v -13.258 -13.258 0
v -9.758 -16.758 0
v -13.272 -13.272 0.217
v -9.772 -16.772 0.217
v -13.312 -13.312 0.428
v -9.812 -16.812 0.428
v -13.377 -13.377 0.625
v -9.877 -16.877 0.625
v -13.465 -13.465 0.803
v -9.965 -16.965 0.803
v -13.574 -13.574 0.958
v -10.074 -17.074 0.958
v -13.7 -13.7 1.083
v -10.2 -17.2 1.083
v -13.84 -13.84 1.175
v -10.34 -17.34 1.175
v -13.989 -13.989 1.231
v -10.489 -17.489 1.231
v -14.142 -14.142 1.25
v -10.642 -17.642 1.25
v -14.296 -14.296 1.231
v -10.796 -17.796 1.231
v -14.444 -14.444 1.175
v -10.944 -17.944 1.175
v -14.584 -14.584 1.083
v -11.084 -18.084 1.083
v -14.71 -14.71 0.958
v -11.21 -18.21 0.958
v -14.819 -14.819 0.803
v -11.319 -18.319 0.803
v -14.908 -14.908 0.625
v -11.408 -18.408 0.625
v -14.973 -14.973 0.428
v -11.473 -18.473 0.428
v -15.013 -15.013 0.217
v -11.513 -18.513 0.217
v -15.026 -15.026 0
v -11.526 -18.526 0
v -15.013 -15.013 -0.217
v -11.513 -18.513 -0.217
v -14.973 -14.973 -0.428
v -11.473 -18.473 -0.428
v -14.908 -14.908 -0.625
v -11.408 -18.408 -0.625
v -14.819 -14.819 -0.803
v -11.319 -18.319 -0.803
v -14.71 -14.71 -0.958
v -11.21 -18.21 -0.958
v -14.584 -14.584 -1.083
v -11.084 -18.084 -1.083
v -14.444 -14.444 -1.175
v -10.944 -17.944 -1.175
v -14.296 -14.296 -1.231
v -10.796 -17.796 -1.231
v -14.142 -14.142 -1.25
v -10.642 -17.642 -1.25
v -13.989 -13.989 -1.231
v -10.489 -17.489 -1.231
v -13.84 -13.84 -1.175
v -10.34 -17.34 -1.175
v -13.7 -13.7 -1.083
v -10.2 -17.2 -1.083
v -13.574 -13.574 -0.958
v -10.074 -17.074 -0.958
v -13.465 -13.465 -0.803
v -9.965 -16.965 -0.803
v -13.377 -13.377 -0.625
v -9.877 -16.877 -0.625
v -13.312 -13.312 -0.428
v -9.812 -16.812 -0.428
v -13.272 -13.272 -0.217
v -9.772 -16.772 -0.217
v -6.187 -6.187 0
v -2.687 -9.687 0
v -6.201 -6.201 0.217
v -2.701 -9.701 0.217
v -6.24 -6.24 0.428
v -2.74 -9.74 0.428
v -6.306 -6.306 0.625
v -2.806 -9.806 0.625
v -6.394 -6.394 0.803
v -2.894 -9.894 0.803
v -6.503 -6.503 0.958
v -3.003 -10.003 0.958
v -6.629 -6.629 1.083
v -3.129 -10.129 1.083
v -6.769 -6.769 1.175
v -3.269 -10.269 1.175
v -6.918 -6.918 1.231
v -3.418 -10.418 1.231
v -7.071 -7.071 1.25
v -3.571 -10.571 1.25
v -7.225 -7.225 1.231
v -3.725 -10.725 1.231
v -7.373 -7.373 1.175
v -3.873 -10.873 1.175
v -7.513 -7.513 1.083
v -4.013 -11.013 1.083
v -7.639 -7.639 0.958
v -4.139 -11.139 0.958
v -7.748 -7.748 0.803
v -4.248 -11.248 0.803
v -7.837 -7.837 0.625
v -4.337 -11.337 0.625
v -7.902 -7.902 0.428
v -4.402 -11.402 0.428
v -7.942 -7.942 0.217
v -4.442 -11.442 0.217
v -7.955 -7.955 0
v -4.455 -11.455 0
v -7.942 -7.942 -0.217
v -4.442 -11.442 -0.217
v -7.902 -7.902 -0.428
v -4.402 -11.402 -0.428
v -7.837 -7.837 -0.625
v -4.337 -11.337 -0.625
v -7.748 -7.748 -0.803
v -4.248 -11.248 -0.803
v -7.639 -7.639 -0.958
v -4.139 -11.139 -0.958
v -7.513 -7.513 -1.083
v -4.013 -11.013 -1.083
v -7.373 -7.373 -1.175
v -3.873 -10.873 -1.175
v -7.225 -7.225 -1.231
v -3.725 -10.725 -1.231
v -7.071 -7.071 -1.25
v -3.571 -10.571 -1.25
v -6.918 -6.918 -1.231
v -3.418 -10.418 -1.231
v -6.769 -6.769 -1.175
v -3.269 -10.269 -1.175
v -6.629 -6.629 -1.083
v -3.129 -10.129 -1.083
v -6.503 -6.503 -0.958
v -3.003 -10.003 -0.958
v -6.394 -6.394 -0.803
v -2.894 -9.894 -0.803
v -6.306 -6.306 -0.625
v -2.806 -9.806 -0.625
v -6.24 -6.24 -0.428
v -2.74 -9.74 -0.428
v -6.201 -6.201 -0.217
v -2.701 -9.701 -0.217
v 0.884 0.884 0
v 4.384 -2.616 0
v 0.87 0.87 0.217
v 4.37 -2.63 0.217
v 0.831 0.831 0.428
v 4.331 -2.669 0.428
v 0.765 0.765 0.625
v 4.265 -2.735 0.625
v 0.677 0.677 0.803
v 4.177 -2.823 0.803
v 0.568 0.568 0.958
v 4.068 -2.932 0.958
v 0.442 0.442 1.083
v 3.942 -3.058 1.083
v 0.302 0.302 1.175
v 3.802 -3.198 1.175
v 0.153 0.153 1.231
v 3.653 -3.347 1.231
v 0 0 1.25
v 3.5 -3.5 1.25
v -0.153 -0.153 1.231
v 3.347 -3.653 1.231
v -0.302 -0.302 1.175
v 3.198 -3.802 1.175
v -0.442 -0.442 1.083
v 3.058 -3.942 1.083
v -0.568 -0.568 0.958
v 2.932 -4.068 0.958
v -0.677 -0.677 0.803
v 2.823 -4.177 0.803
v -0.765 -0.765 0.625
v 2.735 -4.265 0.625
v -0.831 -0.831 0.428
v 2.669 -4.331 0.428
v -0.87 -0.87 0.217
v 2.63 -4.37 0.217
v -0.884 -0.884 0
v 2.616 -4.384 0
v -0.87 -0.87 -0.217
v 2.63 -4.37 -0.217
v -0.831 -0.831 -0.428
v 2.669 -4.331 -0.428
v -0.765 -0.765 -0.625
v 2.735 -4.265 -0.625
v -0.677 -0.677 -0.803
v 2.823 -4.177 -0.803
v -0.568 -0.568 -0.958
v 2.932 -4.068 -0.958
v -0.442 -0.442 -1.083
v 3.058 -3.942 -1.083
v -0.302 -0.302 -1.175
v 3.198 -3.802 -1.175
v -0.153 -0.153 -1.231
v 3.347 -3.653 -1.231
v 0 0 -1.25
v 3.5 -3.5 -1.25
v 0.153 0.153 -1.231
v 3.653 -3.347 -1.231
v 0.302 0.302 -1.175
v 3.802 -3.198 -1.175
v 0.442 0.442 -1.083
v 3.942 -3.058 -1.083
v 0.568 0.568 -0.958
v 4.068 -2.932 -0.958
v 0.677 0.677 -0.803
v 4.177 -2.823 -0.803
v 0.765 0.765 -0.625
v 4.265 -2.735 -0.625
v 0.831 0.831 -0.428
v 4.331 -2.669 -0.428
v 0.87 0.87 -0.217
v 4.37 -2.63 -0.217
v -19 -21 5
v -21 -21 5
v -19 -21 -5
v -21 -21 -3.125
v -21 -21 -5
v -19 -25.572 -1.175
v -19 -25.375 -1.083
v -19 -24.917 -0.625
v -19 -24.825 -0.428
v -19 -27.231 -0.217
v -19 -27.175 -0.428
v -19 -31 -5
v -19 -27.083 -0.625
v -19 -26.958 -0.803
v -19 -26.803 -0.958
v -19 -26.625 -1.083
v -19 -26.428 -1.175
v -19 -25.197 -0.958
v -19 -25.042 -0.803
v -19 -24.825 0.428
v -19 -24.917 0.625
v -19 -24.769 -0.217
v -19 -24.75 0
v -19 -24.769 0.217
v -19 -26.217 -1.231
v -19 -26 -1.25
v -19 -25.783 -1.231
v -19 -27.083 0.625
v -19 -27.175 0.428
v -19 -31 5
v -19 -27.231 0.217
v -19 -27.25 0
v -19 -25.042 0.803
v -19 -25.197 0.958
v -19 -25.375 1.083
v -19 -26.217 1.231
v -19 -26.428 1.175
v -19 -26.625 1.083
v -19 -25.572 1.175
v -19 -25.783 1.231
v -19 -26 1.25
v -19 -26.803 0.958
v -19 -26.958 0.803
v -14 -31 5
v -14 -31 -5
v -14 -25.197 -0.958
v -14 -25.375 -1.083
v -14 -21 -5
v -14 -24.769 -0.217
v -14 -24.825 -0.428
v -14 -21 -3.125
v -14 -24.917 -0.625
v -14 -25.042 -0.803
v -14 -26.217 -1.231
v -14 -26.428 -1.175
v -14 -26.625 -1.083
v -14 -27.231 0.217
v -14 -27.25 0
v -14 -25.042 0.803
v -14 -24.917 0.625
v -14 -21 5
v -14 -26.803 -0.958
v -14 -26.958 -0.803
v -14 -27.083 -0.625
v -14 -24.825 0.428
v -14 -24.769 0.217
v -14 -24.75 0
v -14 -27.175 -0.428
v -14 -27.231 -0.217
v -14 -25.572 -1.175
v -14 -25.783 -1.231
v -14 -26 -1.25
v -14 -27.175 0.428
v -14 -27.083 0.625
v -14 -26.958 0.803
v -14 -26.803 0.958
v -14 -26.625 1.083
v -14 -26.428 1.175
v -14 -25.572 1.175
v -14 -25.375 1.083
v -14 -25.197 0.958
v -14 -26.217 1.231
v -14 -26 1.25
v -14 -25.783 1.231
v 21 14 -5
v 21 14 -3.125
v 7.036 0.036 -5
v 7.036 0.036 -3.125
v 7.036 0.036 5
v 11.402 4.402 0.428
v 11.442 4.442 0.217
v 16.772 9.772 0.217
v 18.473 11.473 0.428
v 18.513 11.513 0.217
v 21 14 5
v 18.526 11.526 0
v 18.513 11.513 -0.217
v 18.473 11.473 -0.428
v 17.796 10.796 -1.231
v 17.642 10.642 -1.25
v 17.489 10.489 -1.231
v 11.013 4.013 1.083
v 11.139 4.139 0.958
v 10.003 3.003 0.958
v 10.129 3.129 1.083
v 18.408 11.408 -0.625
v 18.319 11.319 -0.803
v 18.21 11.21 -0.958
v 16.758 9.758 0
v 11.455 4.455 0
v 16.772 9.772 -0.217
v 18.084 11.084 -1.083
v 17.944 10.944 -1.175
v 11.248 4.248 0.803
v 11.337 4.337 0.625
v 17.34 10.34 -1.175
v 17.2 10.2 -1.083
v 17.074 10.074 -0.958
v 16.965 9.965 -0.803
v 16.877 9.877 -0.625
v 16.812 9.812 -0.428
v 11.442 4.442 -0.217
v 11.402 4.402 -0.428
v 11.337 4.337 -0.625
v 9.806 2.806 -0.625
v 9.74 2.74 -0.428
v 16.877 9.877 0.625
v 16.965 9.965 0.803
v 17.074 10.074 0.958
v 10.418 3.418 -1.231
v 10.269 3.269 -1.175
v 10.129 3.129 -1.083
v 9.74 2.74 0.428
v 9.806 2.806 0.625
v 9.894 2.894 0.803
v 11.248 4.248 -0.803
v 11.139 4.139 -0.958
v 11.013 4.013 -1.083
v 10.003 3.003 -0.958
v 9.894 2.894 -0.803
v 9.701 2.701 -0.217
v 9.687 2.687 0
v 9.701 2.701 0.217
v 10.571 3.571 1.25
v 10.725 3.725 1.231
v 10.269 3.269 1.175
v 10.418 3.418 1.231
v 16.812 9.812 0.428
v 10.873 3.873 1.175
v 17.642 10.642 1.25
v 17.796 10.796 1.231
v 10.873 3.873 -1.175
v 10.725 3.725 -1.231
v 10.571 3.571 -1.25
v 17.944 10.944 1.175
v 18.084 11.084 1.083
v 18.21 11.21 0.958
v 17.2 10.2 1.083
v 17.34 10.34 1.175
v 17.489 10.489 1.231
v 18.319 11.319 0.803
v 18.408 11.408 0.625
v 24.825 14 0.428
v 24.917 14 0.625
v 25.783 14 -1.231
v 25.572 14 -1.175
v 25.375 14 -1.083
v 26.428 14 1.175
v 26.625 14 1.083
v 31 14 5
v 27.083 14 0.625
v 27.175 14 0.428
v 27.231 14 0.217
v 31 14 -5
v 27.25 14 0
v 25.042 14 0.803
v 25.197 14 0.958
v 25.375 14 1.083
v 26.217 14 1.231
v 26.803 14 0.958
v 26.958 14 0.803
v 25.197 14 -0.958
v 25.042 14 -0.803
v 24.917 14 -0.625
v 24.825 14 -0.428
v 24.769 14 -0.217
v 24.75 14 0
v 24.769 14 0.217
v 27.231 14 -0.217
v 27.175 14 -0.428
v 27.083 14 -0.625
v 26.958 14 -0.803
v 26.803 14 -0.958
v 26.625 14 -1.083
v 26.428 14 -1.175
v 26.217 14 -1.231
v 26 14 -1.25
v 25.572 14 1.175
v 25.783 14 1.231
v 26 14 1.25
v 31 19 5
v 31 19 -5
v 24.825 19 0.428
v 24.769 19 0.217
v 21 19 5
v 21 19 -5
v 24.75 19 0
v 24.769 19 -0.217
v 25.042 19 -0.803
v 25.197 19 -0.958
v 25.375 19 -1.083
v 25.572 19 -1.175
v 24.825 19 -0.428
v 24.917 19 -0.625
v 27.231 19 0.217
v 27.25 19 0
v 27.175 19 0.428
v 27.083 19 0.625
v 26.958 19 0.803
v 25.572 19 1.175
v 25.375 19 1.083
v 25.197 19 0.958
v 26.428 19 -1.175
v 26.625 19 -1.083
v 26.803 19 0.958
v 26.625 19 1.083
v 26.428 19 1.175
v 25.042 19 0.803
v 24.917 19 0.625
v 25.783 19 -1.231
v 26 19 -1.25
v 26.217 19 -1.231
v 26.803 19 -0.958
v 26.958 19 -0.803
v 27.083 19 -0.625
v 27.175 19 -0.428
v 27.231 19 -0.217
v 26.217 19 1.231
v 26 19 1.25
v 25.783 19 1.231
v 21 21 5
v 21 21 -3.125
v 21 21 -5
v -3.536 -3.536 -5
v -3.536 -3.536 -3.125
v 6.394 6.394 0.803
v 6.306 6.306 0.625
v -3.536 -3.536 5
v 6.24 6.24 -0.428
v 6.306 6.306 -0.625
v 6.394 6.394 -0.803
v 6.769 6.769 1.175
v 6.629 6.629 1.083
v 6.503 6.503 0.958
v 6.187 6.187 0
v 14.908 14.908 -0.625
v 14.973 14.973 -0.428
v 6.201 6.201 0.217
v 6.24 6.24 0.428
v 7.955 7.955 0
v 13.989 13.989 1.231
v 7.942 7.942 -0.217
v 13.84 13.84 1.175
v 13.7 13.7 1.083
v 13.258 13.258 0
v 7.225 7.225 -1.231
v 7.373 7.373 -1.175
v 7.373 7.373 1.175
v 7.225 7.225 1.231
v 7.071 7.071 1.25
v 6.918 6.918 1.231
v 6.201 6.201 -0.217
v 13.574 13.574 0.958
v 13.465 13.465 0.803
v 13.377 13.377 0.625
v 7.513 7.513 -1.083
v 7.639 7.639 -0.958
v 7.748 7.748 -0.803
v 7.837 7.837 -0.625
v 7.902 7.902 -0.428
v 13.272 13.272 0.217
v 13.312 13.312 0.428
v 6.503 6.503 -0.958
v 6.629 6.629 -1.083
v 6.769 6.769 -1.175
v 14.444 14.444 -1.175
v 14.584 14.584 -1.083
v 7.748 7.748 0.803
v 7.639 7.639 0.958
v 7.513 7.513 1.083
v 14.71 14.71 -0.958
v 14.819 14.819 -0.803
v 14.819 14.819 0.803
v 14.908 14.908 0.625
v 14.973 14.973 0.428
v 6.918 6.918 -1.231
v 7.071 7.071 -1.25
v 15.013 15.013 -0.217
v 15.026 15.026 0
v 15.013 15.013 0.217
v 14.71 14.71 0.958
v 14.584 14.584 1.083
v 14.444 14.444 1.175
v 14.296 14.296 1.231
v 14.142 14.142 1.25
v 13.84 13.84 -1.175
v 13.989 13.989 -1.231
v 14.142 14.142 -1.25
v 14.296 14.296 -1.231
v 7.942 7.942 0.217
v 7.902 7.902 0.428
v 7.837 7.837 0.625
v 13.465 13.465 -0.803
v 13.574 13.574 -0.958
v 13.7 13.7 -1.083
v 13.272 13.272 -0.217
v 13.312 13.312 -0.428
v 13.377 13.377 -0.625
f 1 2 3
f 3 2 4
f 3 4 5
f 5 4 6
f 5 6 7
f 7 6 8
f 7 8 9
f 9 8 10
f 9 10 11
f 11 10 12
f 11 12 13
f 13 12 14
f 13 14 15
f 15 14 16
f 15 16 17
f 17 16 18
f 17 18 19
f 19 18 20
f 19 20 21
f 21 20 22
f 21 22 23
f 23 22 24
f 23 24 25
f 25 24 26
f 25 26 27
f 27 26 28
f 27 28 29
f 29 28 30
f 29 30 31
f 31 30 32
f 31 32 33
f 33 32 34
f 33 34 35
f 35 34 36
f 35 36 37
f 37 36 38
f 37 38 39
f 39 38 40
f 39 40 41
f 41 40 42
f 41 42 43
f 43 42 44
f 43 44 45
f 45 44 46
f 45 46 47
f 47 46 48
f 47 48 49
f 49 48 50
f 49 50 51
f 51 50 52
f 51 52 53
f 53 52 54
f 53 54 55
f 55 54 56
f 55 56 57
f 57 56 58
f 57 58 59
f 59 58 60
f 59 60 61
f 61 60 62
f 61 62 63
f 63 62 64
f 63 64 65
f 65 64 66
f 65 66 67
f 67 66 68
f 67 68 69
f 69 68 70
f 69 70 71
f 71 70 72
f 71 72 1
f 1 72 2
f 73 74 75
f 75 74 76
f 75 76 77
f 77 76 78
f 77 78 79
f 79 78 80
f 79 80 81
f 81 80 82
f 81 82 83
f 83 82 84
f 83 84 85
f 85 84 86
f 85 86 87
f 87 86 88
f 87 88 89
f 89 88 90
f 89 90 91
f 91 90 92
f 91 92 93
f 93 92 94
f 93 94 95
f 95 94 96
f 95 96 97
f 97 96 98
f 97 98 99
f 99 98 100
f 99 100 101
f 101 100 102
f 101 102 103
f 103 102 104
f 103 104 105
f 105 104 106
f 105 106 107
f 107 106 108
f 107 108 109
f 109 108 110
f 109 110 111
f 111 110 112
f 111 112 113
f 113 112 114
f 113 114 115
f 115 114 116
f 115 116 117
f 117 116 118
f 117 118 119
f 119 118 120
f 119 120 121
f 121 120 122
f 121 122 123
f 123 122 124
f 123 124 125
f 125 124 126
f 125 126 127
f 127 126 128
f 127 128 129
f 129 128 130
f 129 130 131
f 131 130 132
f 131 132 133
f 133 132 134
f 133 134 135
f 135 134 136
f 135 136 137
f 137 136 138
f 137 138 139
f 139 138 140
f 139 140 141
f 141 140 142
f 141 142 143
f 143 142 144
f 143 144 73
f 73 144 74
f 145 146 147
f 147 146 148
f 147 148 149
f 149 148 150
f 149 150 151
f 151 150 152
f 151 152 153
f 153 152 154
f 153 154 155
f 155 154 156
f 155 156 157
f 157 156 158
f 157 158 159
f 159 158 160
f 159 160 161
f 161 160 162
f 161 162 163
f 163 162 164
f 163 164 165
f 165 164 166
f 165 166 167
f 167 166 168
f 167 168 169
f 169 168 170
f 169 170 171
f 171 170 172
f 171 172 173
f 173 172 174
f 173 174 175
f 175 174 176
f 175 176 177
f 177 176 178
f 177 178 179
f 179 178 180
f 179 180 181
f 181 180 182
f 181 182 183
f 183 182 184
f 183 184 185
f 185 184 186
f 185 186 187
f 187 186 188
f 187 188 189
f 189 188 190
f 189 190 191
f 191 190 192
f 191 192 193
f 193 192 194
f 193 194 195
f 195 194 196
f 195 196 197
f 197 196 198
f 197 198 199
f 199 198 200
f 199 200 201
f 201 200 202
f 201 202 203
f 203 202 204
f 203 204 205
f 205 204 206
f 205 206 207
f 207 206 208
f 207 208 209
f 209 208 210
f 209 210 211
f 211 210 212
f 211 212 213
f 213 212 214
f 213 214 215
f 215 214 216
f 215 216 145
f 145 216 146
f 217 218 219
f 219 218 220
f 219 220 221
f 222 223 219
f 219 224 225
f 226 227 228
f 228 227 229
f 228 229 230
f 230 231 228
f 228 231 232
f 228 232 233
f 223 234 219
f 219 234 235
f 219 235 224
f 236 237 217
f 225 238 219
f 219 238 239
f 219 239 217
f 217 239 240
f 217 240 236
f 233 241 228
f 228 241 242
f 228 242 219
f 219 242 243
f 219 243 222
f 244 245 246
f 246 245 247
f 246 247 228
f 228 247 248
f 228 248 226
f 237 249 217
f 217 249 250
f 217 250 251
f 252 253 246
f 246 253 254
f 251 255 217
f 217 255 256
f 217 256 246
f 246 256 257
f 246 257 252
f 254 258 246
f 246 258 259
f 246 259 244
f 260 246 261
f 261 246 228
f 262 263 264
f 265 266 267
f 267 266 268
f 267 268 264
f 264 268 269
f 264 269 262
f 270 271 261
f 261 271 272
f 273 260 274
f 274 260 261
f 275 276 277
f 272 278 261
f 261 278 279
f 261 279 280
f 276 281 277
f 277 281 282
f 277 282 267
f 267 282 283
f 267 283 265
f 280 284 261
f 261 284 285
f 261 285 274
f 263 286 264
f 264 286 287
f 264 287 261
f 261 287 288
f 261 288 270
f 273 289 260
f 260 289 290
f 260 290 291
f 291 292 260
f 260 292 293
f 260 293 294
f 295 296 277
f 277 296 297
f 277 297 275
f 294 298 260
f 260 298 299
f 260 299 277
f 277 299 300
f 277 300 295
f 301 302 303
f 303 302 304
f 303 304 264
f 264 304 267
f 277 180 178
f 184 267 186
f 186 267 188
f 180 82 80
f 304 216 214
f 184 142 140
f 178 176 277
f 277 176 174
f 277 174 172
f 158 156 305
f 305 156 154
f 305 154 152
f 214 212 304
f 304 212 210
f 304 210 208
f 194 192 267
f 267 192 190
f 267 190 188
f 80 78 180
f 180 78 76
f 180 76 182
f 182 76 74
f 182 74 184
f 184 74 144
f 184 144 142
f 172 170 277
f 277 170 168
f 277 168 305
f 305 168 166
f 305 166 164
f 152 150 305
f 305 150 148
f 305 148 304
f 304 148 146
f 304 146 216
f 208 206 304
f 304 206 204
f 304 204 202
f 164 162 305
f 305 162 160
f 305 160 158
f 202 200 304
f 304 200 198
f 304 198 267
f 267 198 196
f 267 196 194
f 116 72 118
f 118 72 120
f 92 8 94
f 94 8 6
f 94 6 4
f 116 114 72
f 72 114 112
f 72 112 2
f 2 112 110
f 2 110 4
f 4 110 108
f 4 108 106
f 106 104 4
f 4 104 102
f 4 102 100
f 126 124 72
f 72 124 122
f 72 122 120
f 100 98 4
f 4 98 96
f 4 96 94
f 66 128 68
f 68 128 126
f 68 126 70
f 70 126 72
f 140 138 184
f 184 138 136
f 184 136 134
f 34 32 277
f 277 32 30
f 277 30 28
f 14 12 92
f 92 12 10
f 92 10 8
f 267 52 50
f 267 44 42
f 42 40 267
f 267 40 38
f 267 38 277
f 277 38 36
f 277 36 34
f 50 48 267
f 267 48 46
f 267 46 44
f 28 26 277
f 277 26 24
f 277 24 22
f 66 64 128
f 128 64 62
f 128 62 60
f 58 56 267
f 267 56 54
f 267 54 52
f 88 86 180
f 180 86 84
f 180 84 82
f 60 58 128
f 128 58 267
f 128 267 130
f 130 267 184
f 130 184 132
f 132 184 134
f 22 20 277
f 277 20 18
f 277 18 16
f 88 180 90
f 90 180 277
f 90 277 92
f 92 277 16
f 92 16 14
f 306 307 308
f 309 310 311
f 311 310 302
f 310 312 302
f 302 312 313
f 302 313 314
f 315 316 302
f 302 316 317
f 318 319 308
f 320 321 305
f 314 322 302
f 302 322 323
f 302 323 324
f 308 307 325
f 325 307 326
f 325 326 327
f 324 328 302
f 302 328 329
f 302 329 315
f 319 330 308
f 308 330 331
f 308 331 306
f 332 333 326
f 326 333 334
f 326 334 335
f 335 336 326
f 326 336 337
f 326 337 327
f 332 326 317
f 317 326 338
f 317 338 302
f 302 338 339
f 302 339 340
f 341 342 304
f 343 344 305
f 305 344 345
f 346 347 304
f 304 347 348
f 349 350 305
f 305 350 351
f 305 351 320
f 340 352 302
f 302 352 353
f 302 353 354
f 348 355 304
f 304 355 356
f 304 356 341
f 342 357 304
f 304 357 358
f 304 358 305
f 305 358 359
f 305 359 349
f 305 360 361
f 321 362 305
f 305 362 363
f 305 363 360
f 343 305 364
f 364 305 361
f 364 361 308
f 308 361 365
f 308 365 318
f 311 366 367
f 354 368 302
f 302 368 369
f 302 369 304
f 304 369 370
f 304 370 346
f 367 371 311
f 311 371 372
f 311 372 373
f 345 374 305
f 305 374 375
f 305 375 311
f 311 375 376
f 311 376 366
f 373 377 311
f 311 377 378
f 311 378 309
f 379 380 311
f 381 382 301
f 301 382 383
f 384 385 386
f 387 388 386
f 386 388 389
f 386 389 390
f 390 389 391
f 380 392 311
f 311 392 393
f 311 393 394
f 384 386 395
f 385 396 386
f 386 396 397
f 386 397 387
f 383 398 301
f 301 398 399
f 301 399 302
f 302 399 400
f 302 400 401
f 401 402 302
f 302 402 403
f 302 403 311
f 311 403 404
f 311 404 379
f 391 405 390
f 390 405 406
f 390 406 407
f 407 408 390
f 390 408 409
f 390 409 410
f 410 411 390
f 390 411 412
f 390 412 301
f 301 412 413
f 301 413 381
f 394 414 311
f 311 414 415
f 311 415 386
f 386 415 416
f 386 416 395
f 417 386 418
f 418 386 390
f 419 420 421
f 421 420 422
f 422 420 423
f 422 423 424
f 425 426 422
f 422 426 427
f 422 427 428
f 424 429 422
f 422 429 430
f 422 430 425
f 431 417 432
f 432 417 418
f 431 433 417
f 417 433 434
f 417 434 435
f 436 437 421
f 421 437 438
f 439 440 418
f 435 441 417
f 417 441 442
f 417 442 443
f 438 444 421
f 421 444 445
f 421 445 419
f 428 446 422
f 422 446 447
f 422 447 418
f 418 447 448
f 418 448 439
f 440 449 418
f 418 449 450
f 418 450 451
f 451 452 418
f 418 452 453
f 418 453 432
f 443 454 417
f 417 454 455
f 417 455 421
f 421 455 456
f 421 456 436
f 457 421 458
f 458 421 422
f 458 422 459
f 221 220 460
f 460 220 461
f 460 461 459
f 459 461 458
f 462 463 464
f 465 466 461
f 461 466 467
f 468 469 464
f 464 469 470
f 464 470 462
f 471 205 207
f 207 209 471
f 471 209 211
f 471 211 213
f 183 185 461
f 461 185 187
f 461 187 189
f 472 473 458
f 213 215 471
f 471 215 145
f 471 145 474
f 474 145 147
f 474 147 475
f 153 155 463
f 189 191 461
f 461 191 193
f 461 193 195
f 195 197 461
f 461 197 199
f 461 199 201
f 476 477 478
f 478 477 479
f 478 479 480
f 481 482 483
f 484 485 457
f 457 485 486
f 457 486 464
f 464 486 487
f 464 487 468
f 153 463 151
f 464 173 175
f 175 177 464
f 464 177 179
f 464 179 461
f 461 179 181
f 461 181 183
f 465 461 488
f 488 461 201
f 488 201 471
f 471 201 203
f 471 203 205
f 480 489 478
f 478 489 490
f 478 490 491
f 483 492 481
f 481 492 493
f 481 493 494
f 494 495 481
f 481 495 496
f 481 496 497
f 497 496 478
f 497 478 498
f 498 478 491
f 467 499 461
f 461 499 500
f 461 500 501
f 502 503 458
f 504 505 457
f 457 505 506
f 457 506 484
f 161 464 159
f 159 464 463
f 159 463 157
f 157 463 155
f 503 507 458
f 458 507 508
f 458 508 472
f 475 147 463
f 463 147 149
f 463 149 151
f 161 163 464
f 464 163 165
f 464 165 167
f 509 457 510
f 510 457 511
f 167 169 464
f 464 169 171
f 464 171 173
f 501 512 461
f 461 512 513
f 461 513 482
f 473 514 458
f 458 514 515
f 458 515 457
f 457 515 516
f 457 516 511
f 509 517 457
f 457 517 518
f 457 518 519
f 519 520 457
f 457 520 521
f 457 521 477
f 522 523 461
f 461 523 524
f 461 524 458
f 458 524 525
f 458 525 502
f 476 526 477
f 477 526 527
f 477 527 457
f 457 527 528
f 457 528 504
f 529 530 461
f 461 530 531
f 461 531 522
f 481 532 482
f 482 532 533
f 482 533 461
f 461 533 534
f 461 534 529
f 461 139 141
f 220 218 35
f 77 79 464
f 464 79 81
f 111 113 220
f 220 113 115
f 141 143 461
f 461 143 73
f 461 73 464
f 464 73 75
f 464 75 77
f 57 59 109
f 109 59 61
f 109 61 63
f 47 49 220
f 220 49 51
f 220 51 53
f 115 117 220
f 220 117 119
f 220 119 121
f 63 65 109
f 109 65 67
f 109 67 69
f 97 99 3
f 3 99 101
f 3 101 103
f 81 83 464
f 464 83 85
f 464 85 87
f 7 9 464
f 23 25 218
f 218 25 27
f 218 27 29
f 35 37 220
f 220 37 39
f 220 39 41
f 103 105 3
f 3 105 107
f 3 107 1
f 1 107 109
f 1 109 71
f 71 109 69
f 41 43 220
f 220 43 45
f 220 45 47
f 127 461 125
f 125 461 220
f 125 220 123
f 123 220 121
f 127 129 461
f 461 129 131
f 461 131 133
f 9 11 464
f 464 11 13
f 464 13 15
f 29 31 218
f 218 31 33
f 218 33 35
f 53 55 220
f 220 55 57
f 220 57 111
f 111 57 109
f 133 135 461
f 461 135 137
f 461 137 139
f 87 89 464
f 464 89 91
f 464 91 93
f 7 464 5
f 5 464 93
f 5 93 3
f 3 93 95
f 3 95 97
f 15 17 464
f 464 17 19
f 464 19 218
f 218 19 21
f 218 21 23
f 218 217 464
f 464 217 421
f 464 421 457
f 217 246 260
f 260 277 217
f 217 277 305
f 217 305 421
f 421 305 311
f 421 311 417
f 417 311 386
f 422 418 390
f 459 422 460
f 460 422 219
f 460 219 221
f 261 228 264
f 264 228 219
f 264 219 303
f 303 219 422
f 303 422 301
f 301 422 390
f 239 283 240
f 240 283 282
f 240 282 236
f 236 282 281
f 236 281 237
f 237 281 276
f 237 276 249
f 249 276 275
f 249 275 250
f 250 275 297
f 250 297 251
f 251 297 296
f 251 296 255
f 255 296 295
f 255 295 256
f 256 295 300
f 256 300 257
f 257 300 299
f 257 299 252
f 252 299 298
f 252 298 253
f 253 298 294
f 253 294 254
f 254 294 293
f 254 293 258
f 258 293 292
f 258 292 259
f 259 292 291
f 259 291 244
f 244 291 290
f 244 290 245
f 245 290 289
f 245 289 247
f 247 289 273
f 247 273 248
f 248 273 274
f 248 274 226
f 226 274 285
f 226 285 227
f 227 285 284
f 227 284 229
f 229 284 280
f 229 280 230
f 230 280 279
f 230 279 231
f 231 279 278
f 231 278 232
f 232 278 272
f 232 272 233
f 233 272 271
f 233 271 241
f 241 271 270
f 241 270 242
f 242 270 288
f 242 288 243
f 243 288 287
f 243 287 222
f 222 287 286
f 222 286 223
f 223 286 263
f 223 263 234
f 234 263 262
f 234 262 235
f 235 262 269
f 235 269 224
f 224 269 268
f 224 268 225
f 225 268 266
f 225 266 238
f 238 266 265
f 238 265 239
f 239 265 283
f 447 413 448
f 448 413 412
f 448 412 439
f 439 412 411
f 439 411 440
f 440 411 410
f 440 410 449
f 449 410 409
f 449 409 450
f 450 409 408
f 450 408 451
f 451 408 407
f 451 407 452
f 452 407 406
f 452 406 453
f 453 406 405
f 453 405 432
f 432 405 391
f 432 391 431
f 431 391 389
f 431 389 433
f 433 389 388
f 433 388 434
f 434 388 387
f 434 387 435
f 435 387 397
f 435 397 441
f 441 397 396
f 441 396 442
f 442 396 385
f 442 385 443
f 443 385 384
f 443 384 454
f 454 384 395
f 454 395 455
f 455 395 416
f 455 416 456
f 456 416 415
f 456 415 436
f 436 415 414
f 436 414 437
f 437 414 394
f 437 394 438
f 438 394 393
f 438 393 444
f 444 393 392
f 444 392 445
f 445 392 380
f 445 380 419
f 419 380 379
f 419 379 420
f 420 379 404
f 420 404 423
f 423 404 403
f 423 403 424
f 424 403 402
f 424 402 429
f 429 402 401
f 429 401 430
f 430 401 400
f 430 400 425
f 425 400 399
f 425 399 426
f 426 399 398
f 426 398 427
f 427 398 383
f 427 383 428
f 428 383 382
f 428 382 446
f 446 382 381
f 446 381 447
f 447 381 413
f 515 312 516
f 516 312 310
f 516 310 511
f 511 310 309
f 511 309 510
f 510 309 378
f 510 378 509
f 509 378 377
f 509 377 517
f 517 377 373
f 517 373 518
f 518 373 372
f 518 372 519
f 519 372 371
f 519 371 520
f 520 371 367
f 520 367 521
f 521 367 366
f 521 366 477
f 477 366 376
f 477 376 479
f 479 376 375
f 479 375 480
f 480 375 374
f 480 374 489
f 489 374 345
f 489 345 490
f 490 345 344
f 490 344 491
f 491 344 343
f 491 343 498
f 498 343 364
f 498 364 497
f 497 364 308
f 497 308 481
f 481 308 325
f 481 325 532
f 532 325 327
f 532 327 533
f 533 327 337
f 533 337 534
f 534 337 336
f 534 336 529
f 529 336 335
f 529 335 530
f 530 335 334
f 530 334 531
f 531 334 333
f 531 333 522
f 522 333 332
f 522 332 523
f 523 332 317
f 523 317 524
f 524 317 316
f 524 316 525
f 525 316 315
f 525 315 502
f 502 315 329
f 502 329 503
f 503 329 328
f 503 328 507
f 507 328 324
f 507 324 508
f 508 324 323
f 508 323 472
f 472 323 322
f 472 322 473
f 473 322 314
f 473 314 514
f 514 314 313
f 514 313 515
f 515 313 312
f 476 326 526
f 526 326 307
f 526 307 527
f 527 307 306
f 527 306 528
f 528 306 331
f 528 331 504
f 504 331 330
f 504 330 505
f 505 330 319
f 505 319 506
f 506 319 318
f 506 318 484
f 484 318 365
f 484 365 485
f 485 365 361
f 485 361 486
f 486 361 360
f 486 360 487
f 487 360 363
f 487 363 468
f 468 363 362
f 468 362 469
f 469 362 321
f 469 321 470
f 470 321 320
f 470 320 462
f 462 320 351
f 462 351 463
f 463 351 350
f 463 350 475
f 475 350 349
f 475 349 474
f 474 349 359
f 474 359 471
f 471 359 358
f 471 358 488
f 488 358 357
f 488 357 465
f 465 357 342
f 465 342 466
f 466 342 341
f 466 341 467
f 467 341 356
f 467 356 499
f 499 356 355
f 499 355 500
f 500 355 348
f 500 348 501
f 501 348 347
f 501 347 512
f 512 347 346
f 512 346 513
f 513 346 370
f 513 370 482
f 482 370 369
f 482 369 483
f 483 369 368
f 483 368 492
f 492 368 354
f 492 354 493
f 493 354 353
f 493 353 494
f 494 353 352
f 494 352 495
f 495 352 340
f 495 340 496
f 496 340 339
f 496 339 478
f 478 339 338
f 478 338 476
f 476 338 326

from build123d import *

# Parameters (mm, degrees)
MAIN_DEPTH         = 5
SKETCH2_R          = 1.25
FIXHOLE1_DEPTH     = 43
SKETCH3_R          = 1.25
FIXHOLE2_DEPTH     = 43
SKETCH6_R          = 1.25
CUT_EXTRUDE2_DEPTH = 35.648232278
LPATTERN1_COUNT    = 5
LPATTERN1_PITCH    = 10


with BuildPart() as part:
    # Sketch1 → Main (new body, symmetric)
    with BuildSketch(Plane.XY):
        Polygon((-21, -21), (21, 21), (21, 19), (31, 19), (31, 14), (21, 14), (-14, -21), (-14, -31), (-19, -31), (-19, -21), align=None)
    extrude(amount=MAIN_DEPTH, both=True)

    # Sketch2 → FixHole1 (cut, through all)
    with BuildSketch(Plane(origin=(21, 0, 0), x_dir=(0, 0, -1), z_dir=(1, 0, 0))):
        with Locations((0, -26)):
            Circle(SKETCH2_R)
    extrude(amount=-FIXHOLE1_DEPTH, mode=Mode.SUBTRACT)

    # Sketch3 → FixHole2 (cut, through all)
    with BuildSketch(Plane(origin=(0, -21, 0), x_dir=(-1, 0, 0), z_dir=(0, -1, 0))):
        with Locations((-26, 0)):
            Circle(SKETCH3_R)
    extrude(amount=-FIXHOLE2_DEPTH, mode=Mode.SUBTRACT)

    # Sketch6 → Cut-Extrude2 (cut, through all)
    with BuildSketch(Plane(origin=(3.5, -3.5, 0), x_dir=(0, 0, 1), z_dir=(-0.707106781, 0.707106781, 0))):
        with Locations((0, 20)):
            Circle(SKETCH6_R)
    cut_extrude2 = extrude(amount=CUT_EXTRUDE2_DEPTH, mode=Mode.SUBTRACT)

    # LPattern1: Cut-Extrude2 ×5
    with Locations(*[Vector(-0.707106781, -0.707106781, 0) * (i * LPATTERN1_PITCH) for i in range(1, LPATTERN1_COUNT)]):
        add(cut_extrude2, mode=Mode.SUBTRACT)


solid = part.part
